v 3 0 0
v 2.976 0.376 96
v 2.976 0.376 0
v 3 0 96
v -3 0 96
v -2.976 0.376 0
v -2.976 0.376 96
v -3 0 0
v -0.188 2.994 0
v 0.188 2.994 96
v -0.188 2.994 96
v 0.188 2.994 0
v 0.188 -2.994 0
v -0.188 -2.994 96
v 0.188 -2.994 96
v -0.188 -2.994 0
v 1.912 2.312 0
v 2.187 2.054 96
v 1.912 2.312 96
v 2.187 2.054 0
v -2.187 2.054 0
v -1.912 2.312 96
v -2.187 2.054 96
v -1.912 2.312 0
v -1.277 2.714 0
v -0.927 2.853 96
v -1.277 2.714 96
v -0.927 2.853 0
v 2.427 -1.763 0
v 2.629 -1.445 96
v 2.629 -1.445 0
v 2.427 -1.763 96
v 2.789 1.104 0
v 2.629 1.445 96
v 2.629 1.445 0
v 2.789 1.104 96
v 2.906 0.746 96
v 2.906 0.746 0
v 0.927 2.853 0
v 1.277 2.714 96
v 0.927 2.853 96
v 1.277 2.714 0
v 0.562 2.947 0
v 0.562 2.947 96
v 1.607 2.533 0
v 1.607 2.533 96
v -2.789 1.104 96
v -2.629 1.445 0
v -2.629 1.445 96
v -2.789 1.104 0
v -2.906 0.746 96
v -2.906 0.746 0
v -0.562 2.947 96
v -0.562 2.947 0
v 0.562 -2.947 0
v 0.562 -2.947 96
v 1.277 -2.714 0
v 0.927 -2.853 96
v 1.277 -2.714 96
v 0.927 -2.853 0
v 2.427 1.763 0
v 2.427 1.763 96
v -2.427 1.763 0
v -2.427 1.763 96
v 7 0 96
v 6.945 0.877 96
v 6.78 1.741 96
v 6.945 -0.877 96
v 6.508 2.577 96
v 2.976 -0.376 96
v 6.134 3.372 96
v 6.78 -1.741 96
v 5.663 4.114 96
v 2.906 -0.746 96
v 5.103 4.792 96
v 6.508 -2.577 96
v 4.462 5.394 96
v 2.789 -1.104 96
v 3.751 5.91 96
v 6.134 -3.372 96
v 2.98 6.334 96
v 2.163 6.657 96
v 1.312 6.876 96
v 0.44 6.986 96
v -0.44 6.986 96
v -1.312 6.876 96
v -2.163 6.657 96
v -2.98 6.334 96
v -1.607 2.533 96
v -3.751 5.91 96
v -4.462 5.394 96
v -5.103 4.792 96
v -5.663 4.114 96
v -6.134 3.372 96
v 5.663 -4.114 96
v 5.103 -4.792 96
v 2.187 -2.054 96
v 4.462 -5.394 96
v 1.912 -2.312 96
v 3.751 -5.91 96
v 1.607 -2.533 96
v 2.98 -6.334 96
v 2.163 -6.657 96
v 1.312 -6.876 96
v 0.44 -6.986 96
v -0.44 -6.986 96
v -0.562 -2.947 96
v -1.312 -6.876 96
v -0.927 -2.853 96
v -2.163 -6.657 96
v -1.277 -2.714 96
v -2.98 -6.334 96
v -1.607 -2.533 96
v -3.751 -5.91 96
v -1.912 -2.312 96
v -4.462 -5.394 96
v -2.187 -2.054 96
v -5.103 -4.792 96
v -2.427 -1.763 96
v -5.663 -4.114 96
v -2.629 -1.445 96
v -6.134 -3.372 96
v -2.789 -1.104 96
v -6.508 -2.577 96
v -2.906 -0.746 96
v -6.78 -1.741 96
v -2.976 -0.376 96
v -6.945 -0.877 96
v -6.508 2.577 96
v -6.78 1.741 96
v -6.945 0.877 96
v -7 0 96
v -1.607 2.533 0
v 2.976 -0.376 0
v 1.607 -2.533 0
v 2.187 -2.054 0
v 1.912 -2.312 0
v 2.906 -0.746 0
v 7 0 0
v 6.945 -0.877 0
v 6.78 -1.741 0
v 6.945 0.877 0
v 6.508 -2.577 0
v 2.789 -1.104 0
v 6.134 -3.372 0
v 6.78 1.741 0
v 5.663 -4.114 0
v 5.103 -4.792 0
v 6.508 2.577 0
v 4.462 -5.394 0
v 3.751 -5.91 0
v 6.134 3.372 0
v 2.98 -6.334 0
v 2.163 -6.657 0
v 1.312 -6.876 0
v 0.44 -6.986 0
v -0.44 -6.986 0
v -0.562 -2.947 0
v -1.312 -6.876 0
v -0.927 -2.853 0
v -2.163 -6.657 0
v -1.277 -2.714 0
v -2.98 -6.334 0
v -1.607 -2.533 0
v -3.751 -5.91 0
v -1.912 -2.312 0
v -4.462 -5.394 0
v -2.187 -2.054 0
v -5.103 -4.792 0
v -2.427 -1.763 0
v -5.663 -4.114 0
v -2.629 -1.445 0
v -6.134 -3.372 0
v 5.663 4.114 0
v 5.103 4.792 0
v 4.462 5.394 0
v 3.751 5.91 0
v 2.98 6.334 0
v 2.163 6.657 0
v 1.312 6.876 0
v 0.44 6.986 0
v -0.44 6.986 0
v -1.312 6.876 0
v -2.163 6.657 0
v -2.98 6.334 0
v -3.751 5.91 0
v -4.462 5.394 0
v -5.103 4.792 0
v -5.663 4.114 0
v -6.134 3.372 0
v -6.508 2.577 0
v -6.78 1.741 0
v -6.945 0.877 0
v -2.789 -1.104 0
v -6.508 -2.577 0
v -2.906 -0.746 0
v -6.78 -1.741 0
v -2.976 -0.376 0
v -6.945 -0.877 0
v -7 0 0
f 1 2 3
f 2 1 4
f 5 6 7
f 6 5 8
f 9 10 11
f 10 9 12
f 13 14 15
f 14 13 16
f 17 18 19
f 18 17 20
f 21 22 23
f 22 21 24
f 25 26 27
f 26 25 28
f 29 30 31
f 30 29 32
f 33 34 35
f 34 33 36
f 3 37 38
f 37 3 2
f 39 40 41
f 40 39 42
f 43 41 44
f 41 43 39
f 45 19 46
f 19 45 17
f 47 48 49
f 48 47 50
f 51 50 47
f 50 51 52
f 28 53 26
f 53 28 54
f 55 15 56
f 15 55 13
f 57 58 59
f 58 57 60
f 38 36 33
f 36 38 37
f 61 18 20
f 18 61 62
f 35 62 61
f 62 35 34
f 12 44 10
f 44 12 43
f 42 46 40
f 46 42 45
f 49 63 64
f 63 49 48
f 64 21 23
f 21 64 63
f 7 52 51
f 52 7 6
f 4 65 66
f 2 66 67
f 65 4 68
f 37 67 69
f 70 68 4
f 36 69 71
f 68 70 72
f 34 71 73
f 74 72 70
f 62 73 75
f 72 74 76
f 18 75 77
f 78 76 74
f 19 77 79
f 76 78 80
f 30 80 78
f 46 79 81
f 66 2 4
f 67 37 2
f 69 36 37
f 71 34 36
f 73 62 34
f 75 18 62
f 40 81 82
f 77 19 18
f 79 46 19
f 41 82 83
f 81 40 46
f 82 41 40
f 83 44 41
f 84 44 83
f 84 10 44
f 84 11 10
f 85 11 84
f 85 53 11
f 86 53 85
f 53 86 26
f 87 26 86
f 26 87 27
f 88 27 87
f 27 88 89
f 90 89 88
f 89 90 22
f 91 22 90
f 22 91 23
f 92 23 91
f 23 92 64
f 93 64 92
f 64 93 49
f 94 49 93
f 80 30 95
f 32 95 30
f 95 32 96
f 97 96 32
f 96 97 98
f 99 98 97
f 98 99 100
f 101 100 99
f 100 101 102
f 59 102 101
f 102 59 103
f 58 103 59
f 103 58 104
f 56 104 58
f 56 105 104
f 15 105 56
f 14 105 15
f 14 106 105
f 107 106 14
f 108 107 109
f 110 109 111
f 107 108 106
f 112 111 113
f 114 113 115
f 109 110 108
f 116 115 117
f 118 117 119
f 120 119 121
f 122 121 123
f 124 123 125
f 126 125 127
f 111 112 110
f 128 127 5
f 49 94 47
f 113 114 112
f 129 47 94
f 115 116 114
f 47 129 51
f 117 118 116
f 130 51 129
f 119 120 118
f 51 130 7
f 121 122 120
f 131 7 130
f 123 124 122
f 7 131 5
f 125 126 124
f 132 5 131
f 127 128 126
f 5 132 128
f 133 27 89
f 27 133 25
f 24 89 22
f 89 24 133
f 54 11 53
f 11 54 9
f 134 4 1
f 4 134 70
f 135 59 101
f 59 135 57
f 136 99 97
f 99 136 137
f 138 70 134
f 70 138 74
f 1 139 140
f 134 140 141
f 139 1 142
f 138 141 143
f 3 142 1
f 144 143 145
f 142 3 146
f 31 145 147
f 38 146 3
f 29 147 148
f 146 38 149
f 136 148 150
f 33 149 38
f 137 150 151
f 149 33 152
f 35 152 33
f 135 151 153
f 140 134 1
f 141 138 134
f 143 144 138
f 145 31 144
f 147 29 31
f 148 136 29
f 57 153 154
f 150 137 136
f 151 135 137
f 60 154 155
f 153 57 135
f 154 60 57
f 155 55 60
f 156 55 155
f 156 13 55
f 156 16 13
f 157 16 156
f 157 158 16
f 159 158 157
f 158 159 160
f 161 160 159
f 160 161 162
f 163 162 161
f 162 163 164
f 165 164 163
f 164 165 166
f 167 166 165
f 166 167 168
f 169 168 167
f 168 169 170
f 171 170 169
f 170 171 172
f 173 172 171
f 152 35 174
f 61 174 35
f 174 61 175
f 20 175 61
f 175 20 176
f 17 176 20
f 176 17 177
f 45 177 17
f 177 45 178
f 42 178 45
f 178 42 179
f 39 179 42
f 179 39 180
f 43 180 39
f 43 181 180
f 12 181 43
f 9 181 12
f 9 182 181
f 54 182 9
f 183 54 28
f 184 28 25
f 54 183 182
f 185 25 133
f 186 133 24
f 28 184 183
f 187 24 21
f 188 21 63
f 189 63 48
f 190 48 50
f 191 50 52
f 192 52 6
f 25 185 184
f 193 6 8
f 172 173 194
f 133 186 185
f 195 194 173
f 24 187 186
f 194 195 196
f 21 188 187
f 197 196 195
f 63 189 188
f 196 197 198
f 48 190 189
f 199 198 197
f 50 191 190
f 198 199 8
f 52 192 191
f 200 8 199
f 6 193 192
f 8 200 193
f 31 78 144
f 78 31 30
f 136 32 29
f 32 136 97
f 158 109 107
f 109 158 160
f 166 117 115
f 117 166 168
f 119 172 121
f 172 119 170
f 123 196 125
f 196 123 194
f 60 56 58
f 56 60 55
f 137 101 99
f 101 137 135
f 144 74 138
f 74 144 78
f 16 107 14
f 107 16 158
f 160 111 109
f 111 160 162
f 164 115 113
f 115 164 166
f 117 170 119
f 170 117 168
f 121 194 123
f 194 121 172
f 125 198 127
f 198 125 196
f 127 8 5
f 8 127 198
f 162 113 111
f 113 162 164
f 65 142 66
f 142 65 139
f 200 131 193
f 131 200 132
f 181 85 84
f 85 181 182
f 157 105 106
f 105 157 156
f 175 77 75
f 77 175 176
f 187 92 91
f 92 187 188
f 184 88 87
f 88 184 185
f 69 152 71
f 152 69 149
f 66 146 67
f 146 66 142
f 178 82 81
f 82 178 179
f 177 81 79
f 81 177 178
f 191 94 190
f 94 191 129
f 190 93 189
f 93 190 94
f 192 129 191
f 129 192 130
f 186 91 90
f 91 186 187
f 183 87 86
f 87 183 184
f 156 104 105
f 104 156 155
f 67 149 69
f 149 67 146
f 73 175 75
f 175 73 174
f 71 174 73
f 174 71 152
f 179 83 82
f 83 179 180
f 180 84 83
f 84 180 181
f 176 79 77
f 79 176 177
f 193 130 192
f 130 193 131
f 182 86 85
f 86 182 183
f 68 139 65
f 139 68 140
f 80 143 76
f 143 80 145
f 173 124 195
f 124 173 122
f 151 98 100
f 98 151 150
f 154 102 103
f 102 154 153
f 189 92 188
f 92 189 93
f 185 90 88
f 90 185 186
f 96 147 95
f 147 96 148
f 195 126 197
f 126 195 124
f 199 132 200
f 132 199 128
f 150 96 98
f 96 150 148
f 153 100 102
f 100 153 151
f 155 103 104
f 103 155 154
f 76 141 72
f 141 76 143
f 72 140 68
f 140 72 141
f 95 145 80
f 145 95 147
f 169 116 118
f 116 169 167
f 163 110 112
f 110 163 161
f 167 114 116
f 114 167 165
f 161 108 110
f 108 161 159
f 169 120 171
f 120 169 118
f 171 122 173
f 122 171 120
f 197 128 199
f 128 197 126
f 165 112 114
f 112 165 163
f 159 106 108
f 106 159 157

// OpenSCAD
$fn = 50;


difference() {
	union() {
		cylinder(h = 96, r = 7.0000000000);
	}
	union() {
		cylinder(h = 96, r = 3.0000000000);
		cylinder(h = 96, r = 3.0000000000);
		cylinder(h = 96, r = 1.5000000000);
		cylinder(h = 96, r = 1.5000000000);
		cylinder(h = 96, r = 1.5000000000);
		cylinder(h = 96, r = 1.5000000000);
		cylinder(h = 96, r = 1.5000000000);
		cylinder(h = 96, r = 1.5000000000);
	}
}
